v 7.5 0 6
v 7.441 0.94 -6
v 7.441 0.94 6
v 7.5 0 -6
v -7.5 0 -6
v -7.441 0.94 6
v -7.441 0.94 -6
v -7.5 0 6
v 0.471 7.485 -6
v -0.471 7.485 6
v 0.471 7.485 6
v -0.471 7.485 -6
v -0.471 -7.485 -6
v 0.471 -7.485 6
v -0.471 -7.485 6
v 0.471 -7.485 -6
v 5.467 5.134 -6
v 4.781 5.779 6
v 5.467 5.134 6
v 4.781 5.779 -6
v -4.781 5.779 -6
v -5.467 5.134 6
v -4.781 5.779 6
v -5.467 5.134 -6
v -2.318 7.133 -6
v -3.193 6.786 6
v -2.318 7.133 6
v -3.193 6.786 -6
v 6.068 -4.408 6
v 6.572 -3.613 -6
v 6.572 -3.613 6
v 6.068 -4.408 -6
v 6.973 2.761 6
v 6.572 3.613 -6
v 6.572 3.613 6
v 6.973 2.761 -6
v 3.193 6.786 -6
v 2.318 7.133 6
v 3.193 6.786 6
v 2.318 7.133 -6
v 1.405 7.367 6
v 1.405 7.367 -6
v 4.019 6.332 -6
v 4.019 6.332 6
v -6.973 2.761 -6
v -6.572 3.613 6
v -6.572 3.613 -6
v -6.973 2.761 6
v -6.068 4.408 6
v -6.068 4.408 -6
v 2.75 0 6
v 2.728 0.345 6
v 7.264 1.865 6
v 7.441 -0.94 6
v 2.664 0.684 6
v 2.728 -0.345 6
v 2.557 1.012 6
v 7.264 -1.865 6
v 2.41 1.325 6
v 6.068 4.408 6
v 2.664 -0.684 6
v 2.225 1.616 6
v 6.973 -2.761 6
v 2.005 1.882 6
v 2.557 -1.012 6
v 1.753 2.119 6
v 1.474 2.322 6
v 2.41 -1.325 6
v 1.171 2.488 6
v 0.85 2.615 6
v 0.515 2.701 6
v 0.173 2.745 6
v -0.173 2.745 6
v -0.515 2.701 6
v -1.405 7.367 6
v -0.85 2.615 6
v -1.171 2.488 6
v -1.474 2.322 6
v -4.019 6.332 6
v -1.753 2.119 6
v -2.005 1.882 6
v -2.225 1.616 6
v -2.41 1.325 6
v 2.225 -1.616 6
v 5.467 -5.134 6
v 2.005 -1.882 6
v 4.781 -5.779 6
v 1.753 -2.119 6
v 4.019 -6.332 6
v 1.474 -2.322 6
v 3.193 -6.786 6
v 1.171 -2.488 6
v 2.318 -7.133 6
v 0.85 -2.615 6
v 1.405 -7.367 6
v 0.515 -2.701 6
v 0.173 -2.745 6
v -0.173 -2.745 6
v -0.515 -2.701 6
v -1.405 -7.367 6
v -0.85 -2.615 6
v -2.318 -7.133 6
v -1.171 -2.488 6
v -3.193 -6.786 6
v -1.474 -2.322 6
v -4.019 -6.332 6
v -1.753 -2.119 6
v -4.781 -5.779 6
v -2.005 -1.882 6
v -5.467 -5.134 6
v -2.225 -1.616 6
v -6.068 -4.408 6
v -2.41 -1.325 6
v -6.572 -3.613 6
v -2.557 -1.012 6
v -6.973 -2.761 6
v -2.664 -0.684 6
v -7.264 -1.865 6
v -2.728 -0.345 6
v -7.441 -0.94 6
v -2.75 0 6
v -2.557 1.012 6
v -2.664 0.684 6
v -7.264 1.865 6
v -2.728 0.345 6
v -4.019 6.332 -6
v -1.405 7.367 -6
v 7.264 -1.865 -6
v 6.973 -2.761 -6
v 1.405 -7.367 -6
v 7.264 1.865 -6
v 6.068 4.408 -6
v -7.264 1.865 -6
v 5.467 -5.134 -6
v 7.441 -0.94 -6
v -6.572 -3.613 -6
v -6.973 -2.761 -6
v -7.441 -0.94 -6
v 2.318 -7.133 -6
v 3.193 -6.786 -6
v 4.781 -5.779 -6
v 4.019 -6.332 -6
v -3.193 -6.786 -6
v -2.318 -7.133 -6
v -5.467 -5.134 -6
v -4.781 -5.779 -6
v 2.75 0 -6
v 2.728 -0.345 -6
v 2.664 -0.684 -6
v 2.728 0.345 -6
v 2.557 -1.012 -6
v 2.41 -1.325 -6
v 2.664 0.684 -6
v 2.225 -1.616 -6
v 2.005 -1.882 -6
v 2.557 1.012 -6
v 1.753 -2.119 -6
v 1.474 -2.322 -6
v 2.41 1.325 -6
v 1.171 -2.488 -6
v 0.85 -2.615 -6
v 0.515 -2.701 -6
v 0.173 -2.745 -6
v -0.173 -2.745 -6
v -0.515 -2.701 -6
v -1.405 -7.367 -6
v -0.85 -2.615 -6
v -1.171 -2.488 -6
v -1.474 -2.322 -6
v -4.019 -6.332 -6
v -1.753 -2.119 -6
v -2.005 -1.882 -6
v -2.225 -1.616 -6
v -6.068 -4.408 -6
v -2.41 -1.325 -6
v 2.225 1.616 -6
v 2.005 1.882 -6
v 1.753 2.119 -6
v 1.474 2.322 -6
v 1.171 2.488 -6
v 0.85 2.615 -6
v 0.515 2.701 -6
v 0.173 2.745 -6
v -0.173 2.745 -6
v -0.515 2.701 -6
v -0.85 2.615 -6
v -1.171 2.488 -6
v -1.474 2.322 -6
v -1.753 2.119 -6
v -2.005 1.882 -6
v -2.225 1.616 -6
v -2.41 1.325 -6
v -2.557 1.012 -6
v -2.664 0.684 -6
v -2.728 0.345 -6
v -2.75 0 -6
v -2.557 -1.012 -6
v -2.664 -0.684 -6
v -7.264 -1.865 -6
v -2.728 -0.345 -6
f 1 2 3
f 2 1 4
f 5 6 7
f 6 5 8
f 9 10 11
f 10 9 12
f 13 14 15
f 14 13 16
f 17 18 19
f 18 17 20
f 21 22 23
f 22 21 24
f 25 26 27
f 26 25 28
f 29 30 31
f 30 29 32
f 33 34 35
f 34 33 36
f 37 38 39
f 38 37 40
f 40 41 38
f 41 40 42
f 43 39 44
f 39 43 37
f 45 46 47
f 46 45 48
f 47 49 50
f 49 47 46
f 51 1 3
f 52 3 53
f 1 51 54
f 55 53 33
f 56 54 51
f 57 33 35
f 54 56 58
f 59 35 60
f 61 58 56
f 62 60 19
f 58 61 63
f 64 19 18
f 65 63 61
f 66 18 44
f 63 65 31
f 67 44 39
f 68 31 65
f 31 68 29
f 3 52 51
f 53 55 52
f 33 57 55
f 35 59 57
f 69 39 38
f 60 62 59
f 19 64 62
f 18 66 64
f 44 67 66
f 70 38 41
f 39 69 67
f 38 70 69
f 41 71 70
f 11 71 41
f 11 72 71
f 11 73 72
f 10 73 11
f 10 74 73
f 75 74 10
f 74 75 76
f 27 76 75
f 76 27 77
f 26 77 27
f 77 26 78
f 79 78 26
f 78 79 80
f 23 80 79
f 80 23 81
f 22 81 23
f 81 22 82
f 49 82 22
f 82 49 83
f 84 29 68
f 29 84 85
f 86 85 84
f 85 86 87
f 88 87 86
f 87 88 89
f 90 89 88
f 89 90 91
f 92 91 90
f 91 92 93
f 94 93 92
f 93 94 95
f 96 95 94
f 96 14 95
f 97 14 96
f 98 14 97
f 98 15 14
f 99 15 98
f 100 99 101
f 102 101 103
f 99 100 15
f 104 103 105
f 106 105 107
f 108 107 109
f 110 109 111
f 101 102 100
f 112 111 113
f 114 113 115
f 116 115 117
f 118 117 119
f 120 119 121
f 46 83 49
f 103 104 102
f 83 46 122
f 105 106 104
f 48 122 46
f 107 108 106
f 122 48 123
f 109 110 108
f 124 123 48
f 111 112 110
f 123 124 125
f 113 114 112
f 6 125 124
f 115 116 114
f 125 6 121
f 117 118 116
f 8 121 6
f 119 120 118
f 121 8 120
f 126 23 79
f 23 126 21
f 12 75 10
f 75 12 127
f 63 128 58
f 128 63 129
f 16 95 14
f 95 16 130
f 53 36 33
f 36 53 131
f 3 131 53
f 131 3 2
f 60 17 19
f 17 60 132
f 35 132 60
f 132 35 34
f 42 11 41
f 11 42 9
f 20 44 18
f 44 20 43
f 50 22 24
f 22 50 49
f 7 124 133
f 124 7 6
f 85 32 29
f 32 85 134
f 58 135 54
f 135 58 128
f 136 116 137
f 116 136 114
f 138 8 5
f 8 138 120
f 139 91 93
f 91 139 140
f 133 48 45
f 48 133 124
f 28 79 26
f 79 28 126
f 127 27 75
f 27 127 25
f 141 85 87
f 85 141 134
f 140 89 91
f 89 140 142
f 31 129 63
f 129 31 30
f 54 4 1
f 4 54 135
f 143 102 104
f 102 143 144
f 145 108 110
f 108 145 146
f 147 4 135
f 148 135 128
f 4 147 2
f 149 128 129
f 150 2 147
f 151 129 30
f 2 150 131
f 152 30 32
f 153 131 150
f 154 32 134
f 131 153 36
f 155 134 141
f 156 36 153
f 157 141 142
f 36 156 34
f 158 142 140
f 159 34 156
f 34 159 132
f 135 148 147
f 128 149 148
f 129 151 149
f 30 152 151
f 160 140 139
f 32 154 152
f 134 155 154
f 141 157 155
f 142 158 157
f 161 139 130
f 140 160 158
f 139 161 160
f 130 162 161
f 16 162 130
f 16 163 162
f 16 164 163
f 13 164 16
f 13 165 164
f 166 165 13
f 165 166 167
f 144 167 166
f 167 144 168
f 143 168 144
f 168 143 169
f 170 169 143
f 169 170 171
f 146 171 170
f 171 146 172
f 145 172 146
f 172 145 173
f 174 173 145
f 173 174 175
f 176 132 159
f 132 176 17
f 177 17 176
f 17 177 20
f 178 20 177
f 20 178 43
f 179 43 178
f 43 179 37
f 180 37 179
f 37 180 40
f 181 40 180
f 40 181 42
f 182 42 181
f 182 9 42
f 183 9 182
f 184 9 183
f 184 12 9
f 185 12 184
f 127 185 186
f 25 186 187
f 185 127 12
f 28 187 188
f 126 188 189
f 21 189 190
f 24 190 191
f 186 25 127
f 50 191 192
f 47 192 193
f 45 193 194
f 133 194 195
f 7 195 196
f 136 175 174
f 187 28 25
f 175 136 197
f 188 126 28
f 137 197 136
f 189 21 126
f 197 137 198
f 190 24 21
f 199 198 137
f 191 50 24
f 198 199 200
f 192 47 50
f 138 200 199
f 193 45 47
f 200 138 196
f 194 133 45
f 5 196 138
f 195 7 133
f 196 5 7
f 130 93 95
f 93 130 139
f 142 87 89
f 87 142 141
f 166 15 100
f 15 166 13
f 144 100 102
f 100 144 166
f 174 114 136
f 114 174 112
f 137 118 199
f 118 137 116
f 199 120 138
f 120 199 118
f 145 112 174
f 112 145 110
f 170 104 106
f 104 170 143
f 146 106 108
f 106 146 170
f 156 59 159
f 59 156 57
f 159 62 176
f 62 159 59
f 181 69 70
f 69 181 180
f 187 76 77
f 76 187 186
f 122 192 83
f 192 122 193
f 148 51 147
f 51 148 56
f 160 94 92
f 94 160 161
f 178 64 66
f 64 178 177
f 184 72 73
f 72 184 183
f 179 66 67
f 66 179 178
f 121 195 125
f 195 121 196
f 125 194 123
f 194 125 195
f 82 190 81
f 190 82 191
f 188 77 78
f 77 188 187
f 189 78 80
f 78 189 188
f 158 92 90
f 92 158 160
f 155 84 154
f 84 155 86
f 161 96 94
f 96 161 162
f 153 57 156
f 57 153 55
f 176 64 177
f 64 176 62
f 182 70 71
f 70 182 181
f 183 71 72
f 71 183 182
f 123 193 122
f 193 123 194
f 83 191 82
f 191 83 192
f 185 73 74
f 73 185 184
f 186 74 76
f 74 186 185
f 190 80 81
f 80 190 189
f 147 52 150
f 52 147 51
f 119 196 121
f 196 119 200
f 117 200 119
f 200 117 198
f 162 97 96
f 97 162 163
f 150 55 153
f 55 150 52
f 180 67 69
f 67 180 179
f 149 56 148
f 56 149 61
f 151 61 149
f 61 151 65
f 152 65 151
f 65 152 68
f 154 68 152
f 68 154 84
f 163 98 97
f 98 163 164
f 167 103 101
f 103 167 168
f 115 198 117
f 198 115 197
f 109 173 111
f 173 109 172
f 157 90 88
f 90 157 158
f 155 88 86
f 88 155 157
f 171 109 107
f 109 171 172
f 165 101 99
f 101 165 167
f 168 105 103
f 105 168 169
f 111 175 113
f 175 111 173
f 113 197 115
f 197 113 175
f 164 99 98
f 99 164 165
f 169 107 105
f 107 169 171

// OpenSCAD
$fn = 50;


difference() {
	union() {
		translate(v = [0, 0, -6.0000000000]) {
			cylinder(h = 12, r = 7.5000000000);
		}
	}
	union() {
		translate(v = [0, 0, -100.0000000000]) {
			cylinder(h = 200, r = 2.7500000000);
		}
	}
}
